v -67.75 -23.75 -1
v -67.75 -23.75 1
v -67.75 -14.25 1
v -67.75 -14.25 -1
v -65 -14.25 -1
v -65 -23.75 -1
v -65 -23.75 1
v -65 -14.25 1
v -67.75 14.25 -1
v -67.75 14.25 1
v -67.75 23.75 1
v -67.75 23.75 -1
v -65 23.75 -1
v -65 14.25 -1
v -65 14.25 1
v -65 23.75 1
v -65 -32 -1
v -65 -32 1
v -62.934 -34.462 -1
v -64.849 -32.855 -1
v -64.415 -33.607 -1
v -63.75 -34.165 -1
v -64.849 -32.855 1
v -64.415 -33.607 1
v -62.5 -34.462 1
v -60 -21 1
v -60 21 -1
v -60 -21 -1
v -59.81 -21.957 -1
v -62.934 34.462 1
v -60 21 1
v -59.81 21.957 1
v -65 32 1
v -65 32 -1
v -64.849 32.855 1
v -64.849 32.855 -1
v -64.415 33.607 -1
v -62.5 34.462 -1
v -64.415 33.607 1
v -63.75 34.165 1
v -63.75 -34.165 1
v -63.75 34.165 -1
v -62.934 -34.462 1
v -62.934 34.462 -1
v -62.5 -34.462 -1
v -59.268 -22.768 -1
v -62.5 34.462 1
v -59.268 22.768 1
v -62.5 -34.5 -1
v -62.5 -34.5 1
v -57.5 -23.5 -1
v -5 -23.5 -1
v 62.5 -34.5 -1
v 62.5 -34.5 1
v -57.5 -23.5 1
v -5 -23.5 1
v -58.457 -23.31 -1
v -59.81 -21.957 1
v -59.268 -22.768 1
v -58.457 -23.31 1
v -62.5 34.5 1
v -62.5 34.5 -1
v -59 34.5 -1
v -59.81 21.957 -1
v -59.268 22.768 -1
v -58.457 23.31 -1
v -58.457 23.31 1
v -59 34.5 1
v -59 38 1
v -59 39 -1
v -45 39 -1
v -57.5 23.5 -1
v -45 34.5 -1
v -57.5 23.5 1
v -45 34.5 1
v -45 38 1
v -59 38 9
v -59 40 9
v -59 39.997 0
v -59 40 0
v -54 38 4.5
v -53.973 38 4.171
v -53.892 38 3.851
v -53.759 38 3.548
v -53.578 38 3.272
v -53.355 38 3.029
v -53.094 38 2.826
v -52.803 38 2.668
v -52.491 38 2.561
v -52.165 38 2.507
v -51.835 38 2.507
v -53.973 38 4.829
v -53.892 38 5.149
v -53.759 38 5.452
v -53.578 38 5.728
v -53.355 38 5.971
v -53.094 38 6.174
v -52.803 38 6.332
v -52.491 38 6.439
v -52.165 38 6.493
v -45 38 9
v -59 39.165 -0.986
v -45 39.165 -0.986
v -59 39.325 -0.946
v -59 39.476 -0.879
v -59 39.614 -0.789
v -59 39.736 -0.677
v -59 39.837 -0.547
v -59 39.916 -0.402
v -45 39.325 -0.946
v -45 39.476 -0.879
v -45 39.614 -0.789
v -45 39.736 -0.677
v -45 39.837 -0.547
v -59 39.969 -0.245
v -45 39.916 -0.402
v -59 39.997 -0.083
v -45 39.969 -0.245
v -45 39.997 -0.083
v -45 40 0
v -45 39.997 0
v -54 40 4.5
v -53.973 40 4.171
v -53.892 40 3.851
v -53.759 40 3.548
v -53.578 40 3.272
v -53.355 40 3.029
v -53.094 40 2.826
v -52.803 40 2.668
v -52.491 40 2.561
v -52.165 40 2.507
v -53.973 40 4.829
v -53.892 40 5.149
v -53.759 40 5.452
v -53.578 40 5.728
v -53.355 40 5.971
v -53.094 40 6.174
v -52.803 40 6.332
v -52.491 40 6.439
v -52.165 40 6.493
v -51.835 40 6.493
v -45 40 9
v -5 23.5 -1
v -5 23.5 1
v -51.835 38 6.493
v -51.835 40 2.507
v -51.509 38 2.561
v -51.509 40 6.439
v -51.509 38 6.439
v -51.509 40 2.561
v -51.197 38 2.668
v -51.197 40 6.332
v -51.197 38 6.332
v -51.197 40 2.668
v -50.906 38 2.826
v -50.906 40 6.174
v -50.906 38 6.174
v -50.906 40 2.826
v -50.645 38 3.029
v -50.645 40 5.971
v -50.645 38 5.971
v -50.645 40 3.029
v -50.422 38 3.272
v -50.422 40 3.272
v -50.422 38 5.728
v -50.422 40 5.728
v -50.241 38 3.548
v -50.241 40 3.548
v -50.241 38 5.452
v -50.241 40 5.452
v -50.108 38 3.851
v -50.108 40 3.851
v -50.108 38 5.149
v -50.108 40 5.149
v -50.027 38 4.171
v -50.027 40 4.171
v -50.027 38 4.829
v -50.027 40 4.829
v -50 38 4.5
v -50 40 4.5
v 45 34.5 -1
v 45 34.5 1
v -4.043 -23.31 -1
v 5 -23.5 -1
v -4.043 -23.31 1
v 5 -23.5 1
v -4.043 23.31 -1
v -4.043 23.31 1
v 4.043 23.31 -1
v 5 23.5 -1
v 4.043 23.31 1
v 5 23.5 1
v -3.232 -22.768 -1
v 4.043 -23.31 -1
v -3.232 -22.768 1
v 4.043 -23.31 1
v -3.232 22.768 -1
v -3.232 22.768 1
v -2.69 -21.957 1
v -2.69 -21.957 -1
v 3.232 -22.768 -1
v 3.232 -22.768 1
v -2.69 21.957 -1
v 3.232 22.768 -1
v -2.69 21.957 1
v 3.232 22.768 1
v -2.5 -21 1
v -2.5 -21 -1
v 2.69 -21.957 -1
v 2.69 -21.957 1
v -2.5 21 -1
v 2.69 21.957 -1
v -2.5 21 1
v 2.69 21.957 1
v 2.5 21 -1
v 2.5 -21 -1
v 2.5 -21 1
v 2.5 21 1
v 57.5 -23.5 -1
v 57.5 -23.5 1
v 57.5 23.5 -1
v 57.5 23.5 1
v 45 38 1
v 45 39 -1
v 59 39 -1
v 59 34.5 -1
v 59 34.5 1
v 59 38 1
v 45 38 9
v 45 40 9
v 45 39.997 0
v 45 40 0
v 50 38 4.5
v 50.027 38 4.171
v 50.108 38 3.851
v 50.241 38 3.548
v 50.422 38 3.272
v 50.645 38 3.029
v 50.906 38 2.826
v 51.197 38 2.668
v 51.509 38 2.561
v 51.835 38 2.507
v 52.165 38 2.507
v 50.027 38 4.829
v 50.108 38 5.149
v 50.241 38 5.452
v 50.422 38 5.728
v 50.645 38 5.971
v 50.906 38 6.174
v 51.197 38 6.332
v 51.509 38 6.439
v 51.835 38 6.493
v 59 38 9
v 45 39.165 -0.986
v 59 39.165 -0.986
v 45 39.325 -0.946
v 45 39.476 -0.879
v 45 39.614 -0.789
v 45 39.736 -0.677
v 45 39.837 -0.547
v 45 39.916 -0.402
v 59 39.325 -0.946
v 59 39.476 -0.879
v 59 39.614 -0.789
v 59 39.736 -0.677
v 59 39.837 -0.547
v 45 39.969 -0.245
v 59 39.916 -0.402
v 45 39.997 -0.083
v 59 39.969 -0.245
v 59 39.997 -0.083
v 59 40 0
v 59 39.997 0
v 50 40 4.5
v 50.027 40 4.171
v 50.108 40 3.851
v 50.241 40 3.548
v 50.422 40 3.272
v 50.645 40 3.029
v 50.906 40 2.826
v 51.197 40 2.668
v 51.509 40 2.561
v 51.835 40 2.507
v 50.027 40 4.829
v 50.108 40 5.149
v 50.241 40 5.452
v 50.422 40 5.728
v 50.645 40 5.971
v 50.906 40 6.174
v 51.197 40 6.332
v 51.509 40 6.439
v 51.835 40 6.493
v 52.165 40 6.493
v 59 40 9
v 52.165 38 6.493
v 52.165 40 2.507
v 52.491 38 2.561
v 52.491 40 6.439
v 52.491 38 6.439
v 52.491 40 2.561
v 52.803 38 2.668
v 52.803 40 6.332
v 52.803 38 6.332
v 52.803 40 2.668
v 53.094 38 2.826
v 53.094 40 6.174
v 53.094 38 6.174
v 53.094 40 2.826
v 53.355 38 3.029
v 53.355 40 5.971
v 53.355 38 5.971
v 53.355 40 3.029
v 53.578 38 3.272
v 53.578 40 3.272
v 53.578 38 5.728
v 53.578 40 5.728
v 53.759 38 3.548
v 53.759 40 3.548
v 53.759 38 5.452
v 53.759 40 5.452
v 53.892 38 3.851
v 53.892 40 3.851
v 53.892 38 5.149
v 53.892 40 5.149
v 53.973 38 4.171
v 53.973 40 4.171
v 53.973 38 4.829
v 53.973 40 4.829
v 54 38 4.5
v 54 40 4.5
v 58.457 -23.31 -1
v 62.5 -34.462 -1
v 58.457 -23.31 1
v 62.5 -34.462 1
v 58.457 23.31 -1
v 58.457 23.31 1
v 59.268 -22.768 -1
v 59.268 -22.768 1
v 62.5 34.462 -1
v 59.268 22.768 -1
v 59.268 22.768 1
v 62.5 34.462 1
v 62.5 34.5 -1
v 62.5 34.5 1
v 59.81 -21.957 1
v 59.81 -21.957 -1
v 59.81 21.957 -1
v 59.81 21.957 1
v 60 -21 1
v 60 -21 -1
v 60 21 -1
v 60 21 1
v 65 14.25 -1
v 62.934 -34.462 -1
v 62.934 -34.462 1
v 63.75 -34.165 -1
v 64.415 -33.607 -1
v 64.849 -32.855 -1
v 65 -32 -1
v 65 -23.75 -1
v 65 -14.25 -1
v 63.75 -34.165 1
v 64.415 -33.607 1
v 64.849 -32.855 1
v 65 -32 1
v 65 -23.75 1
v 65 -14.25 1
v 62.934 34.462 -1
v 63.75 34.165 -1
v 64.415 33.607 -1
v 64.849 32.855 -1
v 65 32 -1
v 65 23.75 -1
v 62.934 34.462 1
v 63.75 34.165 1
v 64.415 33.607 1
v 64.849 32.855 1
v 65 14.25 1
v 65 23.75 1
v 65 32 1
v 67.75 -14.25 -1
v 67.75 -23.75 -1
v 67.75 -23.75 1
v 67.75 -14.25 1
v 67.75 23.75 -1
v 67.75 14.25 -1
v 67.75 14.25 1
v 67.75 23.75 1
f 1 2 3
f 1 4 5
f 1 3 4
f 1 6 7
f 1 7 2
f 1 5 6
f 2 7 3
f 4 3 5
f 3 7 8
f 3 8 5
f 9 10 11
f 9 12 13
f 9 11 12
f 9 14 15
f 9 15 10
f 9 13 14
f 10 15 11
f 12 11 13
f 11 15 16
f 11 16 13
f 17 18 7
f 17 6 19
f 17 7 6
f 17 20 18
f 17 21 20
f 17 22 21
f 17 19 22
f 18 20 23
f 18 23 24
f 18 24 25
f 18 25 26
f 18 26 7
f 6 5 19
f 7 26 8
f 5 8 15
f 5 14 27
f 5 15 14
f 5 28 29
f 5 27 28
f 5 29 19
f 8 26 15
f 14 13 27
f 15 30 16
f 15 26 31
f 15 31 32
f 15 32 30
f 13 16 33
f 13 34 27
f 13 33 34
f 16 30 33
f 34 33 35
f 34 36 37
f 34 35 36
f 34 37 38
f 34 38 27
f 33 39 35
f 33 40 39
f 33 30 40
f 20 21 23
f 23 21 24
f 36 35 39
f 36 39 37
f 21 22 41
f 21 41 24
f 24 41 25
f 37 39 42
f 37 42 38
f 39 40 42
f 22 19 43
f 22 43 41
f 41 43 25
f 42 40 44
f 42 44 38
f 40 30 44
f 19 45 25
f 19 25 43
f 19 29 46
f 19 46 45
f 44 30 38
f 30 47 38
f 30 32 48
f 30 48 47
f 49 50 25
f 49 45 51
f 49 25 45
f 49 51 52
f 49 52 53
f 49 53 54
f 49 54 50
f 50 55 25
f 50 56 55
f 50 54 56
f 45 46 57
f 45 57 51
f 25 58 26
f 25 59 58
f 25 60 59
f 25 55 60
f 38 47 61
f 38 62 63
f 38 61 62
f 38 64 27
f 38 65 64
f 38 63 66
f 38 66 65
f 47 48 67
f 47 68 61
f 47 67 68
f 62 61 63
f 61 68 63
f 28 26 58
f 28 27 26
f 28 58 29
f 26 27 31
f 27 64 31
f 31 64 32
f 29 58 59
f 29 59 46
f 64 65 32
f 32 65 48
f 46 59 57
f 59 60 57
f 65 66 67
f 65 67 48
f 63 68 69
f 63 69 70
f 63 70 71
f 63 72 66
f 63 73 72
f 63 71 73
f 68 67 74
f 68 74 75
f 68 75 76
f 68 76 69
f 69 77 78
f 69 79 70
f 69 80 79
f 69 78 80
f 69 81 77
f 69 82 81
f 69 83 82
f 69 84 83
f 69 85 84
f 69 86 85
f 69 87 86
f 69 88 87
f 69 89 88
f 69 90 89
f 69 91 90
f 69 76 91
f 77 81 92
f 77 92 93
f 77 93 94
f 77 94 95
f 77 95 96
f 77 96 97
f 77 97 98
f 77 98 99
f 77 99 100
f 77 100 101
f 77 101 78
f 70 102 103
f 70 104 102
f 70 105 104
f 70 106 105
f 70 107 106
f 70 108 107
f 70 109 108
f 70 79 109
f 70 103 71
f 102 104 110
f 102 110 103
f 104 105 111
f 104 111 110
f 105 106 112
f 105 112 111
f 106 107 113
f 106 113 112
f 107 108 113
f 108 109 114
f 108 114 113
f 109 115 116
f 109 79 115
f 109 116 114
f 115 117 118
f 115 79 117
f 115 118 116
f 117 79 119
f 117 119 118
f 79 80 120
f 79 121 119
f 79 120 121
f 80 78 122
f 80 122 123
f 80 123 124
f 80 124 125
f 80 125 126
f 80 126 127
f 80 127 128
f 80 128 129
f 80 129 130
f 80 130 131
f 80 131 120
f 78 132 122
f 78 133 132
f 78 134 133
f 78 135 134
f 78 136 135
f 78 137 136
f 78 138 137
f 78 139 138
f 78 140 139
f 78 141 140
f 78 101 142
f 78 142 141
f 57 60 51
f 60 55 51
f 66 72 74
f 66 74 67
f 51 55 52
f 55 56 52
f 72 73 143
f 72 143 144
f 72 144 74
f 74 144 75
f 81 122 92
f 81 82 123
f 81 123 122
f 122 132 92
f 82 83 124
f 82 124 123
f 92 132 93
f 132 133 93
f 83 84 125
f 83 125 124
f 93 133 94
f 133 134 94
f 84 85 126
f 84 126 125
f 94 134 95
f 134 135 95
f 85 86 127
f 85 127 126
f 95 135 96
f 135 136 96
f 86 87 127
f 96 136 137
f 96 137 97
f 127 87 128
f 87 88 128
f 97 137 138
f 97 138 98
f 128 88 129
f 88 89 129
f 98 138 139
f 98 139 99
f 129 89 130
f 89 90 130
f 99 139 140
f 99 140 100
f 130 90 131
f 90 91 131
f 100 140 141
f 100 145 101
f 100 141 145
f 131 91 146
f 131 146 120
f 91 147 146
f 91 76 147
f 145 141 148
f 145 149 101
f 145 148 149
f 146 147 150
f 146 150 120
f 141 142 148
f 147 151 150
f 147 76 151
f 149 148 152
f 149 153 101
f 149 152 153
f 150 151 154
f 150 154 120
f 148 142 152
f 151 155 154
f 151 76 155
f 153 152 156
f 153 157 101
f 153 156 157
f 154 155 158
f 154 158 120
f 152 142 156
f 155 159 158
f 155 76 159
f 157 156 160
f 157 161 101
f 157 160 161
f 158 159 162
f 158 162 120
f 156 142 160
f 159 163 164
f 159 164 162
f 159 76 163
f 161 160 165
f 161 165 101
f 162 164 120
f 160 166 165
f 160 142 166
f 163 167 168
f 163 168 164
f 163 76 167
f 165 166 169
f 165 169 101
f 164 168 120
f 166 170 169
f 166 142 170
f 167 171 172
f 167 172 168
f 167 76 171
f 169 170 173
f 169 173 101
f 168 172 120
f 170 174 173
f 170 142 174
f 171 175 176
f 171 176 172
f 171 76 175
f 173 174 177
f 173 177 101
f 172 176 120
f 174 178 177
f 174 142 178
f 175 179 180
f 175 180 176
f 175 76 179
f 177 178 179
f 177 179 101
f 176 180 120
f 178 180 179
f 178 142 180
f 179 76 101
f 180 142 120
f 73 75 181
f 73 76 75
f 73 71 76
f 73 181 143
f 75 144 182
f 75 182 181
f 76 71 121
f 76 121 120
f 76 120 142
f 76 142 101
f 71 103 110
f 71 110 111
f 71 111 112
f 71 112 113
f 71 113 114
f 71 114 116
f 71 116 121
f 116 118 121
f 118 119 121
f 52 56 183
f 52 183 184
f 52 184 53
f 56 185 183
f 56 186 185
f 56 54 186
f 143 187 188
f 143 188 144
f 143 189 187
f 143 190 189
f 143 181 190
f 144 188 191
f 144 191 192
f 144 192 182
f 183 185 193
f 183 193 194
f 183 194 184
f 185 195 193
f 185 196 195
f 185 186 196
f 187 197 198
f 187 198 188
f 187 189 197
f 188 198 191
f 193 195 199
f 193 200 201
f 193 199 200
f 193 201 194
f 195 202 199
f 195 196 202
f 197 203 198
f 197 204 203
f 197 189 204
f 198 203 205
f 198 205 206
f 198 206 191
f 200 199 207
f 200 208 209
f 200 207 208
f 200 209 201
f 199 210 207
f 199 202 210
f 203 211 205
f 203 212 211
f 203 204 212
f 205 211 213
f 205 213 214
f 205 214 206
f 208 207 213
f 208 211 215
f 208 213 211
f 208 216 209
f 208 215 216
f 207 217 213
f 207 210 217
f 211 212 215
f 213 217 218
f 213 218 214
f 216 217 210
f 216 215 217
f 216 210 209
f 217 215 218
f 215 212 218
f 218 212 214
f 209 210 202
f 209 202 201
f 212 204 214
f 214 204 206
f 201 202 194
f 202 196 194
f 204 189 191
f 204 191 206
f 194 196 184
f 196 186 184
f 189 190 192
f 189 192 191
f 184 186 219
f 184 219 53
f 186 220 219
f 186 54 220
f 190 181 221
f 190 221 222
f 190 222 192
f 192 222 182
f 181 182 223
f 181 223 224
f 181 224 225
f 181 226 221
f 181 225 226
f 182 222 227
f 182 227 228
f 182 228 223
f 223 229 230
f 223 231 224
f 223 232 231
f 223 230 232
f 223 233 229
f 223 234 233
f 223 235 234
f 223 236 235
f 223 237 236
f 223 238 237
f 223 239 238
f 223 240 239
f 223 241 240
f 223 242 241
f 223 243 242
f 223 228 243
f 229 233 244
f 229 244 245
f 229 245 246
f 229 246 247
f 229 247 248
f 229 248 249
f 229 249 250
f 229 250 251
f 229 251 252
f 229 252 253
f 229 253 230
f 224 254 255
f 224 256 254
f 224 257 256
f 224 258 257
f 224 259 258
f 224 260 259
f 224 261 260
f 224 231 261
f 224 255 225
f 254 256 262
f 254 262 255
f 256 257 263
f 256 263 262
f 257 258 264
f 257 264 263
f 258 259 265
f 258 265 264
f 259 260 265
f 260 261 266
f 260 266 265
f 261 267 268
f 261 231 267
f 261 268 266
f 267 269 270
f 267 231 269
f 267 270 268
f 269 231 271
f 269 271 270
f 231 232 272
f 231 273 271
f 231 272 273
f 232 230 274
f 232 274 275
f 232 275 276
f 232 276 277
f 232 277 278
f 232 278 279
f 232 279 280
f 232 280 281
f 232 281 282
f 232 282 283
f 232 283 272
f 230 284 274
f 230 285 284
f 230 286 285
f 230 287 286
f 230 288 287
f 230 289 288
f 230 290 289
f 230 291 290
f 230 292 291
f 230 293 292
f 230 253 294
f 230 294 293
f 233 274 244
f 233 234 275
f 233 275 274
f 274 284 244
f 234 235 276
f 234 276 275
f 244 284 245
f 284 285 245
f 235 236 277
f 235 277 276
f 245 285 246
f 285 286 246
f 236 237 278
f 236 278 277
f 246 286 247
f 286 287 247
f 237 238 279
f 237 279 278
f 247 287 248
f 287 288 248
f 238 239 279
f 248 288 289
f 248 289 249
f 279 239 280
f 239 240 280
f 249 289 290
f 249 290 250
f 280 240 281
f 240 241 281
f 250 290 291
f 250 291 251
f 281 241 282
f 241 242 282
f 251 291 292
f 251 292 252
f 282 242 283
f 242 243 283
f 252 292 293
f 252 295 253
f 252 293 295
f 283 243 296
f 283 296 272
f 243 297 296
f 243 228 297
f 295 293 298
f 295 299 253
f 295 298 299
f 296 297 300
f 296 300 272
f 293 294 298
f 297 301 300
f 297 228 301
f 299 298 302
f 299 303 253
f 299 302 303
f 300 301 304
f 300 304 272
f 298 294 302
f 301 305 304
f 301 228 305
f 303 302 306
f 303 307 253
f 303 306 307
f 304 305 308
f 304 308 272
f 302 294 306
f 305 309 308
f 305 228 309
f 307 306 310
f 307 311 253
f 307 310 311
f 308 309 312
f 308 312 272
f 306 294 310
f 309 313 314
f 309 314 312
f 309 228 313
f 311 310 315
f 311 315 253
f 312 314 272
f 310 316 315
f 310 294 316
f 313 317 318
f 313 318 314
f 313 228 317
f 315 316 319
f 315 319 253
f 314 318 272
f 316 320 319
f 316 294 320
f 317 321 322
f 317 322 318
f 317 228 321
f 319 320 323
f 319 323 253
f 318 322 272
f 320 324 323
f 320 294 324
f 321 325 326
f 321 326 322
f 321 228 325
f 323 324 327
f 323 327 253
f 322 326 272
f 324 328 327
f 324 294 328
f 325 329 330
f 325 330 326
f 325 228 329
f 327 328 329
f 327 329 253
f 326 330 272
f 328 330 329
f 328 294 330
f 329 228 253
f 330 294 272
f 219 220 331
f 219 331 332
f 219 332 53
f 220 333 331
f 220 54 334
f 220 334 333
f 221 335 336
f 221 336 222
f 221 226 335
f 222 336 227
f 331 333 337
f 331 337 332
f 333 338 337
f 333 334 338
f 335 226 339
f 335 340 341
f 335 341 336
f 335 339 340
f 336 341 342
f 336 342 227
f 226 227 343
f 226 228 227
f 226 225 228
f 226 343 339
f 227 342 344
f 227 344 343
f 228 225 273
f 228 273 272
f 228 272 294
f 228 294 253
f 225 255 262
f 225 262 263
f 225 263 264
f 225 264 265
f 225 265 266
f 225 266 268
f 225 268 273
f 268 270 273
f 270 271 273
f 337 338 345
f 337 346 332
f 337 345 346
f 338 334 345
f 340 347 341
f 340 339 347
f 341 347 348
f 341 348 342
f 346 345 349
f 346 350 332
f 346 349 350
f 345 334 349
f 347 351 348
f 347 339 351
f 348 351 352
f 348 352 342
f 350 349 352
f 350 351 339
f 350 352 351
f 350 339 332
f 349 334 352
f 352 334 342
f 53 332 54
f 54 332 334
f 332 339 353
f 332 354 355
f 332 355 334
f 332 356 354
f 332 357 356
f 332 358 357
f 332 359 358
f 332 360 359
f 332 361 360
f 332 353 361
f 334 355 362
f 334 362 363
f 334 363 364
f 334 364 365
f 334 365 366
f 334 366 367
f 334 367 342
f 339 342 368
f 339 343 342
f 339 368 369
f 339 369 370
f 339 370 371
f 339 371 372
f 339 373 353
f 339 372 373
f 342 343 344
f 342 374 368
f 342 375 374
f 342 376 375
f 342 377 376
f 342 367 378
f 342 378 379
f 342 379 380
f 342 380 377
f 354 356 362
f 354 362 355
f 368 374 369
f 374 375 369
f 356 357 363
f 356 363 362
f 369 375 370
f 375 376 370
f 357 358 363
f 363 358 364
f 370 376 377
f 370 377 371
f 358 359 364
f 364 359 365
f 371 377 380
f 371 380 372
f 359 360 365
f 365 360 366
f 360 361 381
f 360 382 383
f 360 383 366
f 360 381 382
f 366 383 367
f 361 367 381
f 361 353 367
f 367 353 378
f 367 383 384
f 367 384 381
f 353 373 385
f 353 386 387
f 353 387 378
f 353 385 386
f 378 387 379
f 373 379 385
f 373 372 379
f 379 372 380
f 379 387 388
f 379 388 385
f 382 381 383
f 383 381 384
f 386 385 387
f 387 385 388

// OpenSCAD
// delta is the distance arround the RPI
delta=5;
// thickness is the thickness of the plates
thick=2.5;


// height of the rpi
h = 25;
// small distance between rpi fixation
sd = 49;
// long distance between rpi fixation
ld = 58;
// distance of rpi fixation to borders
db = 3;

// diameter of the fixation
df = 6;
// diameter of the fixation screw
ds = 3;

// fan width
fw = 120;
// fan distance of holes to border
fd = 8;
// fan hole diameter
fhd = 4;

//clip adjustment
ca = .5;

// total lenght to support two rpi
length=sd*2+db*4+delta*3;
height=h+delta;

module internalround() {
    difference() {
        cube([delta/2,delta/2,thick-ca],center=true);
        translate([delta/4,delta/4,0]) cylinder(h=thick+1,d=delta,center=true,$fn=16);
    }
}

module fanholder() {
    cube([2*delta+fhd,delta+fhd,thick-ca],center=true); 
    translate([0,(delta+fhd)/2,(delta+fhd)/2]) rotate([90,0,0]) difference() {
        cube([2*delta+fhd,delta+fhd,thick-ca],center=true);
        cylinder(h=thick+2*ca,d=fhd,$fn=38,center=true);
    }
    translate([0,(delta+fhd)/2,0])  rotate([0,90,0]) cylinder(d=thick-ca,h=2*delta+fhd,$fn=38,center=true);
}


translate([0,ld/2,0]) cube([length,delta+df,thick-ca],center=true);
translate([0,-ld/2,0]) cube([length,delta+df,thick-ca],center=true);
cube([delta,ld,thick-ca],center=true);


translate([length/2,0,0]) cube([delta,ld+df,thick-ca],center=true);
translate([-length/2,0,0]) cube([delta,ld+df,thick-ca],center=true);

translate([length/2,(ld+df)/2,0]) cylinder(h=thick-ca,d=delta,center=true,$fn=18);
translate([length/2,-(ld+df)/2,0]) cylinder(h=thick-ca,d=delta,center=true,$fn=18);
translate([-length/2,(ld+df)/2,0]) cylinder(h=thick-ca,d=delta,center=true,$fn=18);
translate([-length/2,-(ld+df)/2,0]) cylinder(h=thick-ca,d=delta,center=true,$fn=18);

translate([-length/2+3*delta/4,-(ld-df)/2+3*delta/4,0]) internalround();
translate([-length/2+3*delta/4,(ld-df)/2-3*delta/4,0]) rotate([0,0,270]) internalround();

translate([length/2-3*delta/4,-(ld-df)/2+3*delta/4,0]) rotate([0,0,90]) internalround();
translate([length/2-3*delta/4,(ld-df)/2-3*delta/4,0]) rotate([0,0,180]) internalround();


translate([3*delta/4,-(ld-df)/2+3*delta/4,0]) internalround();
translate([3*delta/4,(ld-df)/2-3*delta/4,0]) rotate([0,0,270]) internalround();

translate([-3*delta/4,-(ld-df)/2+3*delta/4,0]) rotate([0,0,90]) internalround();
translate([-3*delta/4,(ld-df)/2-3*delta/4,0]) rotate([0,0,180]) internalround();

translate([-length/2-delta/2-thick/2,(ld-delta)/2-thick-delta,0]) cube([thick+ca,2*delta-ca,thick-ca],center=true);
translate([-length/2-delta/2-thick/2,-(ld-delta)/2+thick+delta,0]) cube([thick+ca,2*delta-ca,thick-ca],center=true);

translate([length/2+delta/2+thick/2,(ld-delta)/2-thick-delta,0]) cube([thick+ca,2*delta-ca,thick-ca],center=true);
translate([length/2+delta/2+thick/2,-(ld-delta)/2+thick+delta,0]) cube([thick+ca,2*delta-ca,thick-ca],center=true);

translate([-fw/2+fd,ld/2+(delta+df)/2,0]) fanholder();
translate([fw/2-fd,ld/2+(delta+df)/2,0]) fanholder();
